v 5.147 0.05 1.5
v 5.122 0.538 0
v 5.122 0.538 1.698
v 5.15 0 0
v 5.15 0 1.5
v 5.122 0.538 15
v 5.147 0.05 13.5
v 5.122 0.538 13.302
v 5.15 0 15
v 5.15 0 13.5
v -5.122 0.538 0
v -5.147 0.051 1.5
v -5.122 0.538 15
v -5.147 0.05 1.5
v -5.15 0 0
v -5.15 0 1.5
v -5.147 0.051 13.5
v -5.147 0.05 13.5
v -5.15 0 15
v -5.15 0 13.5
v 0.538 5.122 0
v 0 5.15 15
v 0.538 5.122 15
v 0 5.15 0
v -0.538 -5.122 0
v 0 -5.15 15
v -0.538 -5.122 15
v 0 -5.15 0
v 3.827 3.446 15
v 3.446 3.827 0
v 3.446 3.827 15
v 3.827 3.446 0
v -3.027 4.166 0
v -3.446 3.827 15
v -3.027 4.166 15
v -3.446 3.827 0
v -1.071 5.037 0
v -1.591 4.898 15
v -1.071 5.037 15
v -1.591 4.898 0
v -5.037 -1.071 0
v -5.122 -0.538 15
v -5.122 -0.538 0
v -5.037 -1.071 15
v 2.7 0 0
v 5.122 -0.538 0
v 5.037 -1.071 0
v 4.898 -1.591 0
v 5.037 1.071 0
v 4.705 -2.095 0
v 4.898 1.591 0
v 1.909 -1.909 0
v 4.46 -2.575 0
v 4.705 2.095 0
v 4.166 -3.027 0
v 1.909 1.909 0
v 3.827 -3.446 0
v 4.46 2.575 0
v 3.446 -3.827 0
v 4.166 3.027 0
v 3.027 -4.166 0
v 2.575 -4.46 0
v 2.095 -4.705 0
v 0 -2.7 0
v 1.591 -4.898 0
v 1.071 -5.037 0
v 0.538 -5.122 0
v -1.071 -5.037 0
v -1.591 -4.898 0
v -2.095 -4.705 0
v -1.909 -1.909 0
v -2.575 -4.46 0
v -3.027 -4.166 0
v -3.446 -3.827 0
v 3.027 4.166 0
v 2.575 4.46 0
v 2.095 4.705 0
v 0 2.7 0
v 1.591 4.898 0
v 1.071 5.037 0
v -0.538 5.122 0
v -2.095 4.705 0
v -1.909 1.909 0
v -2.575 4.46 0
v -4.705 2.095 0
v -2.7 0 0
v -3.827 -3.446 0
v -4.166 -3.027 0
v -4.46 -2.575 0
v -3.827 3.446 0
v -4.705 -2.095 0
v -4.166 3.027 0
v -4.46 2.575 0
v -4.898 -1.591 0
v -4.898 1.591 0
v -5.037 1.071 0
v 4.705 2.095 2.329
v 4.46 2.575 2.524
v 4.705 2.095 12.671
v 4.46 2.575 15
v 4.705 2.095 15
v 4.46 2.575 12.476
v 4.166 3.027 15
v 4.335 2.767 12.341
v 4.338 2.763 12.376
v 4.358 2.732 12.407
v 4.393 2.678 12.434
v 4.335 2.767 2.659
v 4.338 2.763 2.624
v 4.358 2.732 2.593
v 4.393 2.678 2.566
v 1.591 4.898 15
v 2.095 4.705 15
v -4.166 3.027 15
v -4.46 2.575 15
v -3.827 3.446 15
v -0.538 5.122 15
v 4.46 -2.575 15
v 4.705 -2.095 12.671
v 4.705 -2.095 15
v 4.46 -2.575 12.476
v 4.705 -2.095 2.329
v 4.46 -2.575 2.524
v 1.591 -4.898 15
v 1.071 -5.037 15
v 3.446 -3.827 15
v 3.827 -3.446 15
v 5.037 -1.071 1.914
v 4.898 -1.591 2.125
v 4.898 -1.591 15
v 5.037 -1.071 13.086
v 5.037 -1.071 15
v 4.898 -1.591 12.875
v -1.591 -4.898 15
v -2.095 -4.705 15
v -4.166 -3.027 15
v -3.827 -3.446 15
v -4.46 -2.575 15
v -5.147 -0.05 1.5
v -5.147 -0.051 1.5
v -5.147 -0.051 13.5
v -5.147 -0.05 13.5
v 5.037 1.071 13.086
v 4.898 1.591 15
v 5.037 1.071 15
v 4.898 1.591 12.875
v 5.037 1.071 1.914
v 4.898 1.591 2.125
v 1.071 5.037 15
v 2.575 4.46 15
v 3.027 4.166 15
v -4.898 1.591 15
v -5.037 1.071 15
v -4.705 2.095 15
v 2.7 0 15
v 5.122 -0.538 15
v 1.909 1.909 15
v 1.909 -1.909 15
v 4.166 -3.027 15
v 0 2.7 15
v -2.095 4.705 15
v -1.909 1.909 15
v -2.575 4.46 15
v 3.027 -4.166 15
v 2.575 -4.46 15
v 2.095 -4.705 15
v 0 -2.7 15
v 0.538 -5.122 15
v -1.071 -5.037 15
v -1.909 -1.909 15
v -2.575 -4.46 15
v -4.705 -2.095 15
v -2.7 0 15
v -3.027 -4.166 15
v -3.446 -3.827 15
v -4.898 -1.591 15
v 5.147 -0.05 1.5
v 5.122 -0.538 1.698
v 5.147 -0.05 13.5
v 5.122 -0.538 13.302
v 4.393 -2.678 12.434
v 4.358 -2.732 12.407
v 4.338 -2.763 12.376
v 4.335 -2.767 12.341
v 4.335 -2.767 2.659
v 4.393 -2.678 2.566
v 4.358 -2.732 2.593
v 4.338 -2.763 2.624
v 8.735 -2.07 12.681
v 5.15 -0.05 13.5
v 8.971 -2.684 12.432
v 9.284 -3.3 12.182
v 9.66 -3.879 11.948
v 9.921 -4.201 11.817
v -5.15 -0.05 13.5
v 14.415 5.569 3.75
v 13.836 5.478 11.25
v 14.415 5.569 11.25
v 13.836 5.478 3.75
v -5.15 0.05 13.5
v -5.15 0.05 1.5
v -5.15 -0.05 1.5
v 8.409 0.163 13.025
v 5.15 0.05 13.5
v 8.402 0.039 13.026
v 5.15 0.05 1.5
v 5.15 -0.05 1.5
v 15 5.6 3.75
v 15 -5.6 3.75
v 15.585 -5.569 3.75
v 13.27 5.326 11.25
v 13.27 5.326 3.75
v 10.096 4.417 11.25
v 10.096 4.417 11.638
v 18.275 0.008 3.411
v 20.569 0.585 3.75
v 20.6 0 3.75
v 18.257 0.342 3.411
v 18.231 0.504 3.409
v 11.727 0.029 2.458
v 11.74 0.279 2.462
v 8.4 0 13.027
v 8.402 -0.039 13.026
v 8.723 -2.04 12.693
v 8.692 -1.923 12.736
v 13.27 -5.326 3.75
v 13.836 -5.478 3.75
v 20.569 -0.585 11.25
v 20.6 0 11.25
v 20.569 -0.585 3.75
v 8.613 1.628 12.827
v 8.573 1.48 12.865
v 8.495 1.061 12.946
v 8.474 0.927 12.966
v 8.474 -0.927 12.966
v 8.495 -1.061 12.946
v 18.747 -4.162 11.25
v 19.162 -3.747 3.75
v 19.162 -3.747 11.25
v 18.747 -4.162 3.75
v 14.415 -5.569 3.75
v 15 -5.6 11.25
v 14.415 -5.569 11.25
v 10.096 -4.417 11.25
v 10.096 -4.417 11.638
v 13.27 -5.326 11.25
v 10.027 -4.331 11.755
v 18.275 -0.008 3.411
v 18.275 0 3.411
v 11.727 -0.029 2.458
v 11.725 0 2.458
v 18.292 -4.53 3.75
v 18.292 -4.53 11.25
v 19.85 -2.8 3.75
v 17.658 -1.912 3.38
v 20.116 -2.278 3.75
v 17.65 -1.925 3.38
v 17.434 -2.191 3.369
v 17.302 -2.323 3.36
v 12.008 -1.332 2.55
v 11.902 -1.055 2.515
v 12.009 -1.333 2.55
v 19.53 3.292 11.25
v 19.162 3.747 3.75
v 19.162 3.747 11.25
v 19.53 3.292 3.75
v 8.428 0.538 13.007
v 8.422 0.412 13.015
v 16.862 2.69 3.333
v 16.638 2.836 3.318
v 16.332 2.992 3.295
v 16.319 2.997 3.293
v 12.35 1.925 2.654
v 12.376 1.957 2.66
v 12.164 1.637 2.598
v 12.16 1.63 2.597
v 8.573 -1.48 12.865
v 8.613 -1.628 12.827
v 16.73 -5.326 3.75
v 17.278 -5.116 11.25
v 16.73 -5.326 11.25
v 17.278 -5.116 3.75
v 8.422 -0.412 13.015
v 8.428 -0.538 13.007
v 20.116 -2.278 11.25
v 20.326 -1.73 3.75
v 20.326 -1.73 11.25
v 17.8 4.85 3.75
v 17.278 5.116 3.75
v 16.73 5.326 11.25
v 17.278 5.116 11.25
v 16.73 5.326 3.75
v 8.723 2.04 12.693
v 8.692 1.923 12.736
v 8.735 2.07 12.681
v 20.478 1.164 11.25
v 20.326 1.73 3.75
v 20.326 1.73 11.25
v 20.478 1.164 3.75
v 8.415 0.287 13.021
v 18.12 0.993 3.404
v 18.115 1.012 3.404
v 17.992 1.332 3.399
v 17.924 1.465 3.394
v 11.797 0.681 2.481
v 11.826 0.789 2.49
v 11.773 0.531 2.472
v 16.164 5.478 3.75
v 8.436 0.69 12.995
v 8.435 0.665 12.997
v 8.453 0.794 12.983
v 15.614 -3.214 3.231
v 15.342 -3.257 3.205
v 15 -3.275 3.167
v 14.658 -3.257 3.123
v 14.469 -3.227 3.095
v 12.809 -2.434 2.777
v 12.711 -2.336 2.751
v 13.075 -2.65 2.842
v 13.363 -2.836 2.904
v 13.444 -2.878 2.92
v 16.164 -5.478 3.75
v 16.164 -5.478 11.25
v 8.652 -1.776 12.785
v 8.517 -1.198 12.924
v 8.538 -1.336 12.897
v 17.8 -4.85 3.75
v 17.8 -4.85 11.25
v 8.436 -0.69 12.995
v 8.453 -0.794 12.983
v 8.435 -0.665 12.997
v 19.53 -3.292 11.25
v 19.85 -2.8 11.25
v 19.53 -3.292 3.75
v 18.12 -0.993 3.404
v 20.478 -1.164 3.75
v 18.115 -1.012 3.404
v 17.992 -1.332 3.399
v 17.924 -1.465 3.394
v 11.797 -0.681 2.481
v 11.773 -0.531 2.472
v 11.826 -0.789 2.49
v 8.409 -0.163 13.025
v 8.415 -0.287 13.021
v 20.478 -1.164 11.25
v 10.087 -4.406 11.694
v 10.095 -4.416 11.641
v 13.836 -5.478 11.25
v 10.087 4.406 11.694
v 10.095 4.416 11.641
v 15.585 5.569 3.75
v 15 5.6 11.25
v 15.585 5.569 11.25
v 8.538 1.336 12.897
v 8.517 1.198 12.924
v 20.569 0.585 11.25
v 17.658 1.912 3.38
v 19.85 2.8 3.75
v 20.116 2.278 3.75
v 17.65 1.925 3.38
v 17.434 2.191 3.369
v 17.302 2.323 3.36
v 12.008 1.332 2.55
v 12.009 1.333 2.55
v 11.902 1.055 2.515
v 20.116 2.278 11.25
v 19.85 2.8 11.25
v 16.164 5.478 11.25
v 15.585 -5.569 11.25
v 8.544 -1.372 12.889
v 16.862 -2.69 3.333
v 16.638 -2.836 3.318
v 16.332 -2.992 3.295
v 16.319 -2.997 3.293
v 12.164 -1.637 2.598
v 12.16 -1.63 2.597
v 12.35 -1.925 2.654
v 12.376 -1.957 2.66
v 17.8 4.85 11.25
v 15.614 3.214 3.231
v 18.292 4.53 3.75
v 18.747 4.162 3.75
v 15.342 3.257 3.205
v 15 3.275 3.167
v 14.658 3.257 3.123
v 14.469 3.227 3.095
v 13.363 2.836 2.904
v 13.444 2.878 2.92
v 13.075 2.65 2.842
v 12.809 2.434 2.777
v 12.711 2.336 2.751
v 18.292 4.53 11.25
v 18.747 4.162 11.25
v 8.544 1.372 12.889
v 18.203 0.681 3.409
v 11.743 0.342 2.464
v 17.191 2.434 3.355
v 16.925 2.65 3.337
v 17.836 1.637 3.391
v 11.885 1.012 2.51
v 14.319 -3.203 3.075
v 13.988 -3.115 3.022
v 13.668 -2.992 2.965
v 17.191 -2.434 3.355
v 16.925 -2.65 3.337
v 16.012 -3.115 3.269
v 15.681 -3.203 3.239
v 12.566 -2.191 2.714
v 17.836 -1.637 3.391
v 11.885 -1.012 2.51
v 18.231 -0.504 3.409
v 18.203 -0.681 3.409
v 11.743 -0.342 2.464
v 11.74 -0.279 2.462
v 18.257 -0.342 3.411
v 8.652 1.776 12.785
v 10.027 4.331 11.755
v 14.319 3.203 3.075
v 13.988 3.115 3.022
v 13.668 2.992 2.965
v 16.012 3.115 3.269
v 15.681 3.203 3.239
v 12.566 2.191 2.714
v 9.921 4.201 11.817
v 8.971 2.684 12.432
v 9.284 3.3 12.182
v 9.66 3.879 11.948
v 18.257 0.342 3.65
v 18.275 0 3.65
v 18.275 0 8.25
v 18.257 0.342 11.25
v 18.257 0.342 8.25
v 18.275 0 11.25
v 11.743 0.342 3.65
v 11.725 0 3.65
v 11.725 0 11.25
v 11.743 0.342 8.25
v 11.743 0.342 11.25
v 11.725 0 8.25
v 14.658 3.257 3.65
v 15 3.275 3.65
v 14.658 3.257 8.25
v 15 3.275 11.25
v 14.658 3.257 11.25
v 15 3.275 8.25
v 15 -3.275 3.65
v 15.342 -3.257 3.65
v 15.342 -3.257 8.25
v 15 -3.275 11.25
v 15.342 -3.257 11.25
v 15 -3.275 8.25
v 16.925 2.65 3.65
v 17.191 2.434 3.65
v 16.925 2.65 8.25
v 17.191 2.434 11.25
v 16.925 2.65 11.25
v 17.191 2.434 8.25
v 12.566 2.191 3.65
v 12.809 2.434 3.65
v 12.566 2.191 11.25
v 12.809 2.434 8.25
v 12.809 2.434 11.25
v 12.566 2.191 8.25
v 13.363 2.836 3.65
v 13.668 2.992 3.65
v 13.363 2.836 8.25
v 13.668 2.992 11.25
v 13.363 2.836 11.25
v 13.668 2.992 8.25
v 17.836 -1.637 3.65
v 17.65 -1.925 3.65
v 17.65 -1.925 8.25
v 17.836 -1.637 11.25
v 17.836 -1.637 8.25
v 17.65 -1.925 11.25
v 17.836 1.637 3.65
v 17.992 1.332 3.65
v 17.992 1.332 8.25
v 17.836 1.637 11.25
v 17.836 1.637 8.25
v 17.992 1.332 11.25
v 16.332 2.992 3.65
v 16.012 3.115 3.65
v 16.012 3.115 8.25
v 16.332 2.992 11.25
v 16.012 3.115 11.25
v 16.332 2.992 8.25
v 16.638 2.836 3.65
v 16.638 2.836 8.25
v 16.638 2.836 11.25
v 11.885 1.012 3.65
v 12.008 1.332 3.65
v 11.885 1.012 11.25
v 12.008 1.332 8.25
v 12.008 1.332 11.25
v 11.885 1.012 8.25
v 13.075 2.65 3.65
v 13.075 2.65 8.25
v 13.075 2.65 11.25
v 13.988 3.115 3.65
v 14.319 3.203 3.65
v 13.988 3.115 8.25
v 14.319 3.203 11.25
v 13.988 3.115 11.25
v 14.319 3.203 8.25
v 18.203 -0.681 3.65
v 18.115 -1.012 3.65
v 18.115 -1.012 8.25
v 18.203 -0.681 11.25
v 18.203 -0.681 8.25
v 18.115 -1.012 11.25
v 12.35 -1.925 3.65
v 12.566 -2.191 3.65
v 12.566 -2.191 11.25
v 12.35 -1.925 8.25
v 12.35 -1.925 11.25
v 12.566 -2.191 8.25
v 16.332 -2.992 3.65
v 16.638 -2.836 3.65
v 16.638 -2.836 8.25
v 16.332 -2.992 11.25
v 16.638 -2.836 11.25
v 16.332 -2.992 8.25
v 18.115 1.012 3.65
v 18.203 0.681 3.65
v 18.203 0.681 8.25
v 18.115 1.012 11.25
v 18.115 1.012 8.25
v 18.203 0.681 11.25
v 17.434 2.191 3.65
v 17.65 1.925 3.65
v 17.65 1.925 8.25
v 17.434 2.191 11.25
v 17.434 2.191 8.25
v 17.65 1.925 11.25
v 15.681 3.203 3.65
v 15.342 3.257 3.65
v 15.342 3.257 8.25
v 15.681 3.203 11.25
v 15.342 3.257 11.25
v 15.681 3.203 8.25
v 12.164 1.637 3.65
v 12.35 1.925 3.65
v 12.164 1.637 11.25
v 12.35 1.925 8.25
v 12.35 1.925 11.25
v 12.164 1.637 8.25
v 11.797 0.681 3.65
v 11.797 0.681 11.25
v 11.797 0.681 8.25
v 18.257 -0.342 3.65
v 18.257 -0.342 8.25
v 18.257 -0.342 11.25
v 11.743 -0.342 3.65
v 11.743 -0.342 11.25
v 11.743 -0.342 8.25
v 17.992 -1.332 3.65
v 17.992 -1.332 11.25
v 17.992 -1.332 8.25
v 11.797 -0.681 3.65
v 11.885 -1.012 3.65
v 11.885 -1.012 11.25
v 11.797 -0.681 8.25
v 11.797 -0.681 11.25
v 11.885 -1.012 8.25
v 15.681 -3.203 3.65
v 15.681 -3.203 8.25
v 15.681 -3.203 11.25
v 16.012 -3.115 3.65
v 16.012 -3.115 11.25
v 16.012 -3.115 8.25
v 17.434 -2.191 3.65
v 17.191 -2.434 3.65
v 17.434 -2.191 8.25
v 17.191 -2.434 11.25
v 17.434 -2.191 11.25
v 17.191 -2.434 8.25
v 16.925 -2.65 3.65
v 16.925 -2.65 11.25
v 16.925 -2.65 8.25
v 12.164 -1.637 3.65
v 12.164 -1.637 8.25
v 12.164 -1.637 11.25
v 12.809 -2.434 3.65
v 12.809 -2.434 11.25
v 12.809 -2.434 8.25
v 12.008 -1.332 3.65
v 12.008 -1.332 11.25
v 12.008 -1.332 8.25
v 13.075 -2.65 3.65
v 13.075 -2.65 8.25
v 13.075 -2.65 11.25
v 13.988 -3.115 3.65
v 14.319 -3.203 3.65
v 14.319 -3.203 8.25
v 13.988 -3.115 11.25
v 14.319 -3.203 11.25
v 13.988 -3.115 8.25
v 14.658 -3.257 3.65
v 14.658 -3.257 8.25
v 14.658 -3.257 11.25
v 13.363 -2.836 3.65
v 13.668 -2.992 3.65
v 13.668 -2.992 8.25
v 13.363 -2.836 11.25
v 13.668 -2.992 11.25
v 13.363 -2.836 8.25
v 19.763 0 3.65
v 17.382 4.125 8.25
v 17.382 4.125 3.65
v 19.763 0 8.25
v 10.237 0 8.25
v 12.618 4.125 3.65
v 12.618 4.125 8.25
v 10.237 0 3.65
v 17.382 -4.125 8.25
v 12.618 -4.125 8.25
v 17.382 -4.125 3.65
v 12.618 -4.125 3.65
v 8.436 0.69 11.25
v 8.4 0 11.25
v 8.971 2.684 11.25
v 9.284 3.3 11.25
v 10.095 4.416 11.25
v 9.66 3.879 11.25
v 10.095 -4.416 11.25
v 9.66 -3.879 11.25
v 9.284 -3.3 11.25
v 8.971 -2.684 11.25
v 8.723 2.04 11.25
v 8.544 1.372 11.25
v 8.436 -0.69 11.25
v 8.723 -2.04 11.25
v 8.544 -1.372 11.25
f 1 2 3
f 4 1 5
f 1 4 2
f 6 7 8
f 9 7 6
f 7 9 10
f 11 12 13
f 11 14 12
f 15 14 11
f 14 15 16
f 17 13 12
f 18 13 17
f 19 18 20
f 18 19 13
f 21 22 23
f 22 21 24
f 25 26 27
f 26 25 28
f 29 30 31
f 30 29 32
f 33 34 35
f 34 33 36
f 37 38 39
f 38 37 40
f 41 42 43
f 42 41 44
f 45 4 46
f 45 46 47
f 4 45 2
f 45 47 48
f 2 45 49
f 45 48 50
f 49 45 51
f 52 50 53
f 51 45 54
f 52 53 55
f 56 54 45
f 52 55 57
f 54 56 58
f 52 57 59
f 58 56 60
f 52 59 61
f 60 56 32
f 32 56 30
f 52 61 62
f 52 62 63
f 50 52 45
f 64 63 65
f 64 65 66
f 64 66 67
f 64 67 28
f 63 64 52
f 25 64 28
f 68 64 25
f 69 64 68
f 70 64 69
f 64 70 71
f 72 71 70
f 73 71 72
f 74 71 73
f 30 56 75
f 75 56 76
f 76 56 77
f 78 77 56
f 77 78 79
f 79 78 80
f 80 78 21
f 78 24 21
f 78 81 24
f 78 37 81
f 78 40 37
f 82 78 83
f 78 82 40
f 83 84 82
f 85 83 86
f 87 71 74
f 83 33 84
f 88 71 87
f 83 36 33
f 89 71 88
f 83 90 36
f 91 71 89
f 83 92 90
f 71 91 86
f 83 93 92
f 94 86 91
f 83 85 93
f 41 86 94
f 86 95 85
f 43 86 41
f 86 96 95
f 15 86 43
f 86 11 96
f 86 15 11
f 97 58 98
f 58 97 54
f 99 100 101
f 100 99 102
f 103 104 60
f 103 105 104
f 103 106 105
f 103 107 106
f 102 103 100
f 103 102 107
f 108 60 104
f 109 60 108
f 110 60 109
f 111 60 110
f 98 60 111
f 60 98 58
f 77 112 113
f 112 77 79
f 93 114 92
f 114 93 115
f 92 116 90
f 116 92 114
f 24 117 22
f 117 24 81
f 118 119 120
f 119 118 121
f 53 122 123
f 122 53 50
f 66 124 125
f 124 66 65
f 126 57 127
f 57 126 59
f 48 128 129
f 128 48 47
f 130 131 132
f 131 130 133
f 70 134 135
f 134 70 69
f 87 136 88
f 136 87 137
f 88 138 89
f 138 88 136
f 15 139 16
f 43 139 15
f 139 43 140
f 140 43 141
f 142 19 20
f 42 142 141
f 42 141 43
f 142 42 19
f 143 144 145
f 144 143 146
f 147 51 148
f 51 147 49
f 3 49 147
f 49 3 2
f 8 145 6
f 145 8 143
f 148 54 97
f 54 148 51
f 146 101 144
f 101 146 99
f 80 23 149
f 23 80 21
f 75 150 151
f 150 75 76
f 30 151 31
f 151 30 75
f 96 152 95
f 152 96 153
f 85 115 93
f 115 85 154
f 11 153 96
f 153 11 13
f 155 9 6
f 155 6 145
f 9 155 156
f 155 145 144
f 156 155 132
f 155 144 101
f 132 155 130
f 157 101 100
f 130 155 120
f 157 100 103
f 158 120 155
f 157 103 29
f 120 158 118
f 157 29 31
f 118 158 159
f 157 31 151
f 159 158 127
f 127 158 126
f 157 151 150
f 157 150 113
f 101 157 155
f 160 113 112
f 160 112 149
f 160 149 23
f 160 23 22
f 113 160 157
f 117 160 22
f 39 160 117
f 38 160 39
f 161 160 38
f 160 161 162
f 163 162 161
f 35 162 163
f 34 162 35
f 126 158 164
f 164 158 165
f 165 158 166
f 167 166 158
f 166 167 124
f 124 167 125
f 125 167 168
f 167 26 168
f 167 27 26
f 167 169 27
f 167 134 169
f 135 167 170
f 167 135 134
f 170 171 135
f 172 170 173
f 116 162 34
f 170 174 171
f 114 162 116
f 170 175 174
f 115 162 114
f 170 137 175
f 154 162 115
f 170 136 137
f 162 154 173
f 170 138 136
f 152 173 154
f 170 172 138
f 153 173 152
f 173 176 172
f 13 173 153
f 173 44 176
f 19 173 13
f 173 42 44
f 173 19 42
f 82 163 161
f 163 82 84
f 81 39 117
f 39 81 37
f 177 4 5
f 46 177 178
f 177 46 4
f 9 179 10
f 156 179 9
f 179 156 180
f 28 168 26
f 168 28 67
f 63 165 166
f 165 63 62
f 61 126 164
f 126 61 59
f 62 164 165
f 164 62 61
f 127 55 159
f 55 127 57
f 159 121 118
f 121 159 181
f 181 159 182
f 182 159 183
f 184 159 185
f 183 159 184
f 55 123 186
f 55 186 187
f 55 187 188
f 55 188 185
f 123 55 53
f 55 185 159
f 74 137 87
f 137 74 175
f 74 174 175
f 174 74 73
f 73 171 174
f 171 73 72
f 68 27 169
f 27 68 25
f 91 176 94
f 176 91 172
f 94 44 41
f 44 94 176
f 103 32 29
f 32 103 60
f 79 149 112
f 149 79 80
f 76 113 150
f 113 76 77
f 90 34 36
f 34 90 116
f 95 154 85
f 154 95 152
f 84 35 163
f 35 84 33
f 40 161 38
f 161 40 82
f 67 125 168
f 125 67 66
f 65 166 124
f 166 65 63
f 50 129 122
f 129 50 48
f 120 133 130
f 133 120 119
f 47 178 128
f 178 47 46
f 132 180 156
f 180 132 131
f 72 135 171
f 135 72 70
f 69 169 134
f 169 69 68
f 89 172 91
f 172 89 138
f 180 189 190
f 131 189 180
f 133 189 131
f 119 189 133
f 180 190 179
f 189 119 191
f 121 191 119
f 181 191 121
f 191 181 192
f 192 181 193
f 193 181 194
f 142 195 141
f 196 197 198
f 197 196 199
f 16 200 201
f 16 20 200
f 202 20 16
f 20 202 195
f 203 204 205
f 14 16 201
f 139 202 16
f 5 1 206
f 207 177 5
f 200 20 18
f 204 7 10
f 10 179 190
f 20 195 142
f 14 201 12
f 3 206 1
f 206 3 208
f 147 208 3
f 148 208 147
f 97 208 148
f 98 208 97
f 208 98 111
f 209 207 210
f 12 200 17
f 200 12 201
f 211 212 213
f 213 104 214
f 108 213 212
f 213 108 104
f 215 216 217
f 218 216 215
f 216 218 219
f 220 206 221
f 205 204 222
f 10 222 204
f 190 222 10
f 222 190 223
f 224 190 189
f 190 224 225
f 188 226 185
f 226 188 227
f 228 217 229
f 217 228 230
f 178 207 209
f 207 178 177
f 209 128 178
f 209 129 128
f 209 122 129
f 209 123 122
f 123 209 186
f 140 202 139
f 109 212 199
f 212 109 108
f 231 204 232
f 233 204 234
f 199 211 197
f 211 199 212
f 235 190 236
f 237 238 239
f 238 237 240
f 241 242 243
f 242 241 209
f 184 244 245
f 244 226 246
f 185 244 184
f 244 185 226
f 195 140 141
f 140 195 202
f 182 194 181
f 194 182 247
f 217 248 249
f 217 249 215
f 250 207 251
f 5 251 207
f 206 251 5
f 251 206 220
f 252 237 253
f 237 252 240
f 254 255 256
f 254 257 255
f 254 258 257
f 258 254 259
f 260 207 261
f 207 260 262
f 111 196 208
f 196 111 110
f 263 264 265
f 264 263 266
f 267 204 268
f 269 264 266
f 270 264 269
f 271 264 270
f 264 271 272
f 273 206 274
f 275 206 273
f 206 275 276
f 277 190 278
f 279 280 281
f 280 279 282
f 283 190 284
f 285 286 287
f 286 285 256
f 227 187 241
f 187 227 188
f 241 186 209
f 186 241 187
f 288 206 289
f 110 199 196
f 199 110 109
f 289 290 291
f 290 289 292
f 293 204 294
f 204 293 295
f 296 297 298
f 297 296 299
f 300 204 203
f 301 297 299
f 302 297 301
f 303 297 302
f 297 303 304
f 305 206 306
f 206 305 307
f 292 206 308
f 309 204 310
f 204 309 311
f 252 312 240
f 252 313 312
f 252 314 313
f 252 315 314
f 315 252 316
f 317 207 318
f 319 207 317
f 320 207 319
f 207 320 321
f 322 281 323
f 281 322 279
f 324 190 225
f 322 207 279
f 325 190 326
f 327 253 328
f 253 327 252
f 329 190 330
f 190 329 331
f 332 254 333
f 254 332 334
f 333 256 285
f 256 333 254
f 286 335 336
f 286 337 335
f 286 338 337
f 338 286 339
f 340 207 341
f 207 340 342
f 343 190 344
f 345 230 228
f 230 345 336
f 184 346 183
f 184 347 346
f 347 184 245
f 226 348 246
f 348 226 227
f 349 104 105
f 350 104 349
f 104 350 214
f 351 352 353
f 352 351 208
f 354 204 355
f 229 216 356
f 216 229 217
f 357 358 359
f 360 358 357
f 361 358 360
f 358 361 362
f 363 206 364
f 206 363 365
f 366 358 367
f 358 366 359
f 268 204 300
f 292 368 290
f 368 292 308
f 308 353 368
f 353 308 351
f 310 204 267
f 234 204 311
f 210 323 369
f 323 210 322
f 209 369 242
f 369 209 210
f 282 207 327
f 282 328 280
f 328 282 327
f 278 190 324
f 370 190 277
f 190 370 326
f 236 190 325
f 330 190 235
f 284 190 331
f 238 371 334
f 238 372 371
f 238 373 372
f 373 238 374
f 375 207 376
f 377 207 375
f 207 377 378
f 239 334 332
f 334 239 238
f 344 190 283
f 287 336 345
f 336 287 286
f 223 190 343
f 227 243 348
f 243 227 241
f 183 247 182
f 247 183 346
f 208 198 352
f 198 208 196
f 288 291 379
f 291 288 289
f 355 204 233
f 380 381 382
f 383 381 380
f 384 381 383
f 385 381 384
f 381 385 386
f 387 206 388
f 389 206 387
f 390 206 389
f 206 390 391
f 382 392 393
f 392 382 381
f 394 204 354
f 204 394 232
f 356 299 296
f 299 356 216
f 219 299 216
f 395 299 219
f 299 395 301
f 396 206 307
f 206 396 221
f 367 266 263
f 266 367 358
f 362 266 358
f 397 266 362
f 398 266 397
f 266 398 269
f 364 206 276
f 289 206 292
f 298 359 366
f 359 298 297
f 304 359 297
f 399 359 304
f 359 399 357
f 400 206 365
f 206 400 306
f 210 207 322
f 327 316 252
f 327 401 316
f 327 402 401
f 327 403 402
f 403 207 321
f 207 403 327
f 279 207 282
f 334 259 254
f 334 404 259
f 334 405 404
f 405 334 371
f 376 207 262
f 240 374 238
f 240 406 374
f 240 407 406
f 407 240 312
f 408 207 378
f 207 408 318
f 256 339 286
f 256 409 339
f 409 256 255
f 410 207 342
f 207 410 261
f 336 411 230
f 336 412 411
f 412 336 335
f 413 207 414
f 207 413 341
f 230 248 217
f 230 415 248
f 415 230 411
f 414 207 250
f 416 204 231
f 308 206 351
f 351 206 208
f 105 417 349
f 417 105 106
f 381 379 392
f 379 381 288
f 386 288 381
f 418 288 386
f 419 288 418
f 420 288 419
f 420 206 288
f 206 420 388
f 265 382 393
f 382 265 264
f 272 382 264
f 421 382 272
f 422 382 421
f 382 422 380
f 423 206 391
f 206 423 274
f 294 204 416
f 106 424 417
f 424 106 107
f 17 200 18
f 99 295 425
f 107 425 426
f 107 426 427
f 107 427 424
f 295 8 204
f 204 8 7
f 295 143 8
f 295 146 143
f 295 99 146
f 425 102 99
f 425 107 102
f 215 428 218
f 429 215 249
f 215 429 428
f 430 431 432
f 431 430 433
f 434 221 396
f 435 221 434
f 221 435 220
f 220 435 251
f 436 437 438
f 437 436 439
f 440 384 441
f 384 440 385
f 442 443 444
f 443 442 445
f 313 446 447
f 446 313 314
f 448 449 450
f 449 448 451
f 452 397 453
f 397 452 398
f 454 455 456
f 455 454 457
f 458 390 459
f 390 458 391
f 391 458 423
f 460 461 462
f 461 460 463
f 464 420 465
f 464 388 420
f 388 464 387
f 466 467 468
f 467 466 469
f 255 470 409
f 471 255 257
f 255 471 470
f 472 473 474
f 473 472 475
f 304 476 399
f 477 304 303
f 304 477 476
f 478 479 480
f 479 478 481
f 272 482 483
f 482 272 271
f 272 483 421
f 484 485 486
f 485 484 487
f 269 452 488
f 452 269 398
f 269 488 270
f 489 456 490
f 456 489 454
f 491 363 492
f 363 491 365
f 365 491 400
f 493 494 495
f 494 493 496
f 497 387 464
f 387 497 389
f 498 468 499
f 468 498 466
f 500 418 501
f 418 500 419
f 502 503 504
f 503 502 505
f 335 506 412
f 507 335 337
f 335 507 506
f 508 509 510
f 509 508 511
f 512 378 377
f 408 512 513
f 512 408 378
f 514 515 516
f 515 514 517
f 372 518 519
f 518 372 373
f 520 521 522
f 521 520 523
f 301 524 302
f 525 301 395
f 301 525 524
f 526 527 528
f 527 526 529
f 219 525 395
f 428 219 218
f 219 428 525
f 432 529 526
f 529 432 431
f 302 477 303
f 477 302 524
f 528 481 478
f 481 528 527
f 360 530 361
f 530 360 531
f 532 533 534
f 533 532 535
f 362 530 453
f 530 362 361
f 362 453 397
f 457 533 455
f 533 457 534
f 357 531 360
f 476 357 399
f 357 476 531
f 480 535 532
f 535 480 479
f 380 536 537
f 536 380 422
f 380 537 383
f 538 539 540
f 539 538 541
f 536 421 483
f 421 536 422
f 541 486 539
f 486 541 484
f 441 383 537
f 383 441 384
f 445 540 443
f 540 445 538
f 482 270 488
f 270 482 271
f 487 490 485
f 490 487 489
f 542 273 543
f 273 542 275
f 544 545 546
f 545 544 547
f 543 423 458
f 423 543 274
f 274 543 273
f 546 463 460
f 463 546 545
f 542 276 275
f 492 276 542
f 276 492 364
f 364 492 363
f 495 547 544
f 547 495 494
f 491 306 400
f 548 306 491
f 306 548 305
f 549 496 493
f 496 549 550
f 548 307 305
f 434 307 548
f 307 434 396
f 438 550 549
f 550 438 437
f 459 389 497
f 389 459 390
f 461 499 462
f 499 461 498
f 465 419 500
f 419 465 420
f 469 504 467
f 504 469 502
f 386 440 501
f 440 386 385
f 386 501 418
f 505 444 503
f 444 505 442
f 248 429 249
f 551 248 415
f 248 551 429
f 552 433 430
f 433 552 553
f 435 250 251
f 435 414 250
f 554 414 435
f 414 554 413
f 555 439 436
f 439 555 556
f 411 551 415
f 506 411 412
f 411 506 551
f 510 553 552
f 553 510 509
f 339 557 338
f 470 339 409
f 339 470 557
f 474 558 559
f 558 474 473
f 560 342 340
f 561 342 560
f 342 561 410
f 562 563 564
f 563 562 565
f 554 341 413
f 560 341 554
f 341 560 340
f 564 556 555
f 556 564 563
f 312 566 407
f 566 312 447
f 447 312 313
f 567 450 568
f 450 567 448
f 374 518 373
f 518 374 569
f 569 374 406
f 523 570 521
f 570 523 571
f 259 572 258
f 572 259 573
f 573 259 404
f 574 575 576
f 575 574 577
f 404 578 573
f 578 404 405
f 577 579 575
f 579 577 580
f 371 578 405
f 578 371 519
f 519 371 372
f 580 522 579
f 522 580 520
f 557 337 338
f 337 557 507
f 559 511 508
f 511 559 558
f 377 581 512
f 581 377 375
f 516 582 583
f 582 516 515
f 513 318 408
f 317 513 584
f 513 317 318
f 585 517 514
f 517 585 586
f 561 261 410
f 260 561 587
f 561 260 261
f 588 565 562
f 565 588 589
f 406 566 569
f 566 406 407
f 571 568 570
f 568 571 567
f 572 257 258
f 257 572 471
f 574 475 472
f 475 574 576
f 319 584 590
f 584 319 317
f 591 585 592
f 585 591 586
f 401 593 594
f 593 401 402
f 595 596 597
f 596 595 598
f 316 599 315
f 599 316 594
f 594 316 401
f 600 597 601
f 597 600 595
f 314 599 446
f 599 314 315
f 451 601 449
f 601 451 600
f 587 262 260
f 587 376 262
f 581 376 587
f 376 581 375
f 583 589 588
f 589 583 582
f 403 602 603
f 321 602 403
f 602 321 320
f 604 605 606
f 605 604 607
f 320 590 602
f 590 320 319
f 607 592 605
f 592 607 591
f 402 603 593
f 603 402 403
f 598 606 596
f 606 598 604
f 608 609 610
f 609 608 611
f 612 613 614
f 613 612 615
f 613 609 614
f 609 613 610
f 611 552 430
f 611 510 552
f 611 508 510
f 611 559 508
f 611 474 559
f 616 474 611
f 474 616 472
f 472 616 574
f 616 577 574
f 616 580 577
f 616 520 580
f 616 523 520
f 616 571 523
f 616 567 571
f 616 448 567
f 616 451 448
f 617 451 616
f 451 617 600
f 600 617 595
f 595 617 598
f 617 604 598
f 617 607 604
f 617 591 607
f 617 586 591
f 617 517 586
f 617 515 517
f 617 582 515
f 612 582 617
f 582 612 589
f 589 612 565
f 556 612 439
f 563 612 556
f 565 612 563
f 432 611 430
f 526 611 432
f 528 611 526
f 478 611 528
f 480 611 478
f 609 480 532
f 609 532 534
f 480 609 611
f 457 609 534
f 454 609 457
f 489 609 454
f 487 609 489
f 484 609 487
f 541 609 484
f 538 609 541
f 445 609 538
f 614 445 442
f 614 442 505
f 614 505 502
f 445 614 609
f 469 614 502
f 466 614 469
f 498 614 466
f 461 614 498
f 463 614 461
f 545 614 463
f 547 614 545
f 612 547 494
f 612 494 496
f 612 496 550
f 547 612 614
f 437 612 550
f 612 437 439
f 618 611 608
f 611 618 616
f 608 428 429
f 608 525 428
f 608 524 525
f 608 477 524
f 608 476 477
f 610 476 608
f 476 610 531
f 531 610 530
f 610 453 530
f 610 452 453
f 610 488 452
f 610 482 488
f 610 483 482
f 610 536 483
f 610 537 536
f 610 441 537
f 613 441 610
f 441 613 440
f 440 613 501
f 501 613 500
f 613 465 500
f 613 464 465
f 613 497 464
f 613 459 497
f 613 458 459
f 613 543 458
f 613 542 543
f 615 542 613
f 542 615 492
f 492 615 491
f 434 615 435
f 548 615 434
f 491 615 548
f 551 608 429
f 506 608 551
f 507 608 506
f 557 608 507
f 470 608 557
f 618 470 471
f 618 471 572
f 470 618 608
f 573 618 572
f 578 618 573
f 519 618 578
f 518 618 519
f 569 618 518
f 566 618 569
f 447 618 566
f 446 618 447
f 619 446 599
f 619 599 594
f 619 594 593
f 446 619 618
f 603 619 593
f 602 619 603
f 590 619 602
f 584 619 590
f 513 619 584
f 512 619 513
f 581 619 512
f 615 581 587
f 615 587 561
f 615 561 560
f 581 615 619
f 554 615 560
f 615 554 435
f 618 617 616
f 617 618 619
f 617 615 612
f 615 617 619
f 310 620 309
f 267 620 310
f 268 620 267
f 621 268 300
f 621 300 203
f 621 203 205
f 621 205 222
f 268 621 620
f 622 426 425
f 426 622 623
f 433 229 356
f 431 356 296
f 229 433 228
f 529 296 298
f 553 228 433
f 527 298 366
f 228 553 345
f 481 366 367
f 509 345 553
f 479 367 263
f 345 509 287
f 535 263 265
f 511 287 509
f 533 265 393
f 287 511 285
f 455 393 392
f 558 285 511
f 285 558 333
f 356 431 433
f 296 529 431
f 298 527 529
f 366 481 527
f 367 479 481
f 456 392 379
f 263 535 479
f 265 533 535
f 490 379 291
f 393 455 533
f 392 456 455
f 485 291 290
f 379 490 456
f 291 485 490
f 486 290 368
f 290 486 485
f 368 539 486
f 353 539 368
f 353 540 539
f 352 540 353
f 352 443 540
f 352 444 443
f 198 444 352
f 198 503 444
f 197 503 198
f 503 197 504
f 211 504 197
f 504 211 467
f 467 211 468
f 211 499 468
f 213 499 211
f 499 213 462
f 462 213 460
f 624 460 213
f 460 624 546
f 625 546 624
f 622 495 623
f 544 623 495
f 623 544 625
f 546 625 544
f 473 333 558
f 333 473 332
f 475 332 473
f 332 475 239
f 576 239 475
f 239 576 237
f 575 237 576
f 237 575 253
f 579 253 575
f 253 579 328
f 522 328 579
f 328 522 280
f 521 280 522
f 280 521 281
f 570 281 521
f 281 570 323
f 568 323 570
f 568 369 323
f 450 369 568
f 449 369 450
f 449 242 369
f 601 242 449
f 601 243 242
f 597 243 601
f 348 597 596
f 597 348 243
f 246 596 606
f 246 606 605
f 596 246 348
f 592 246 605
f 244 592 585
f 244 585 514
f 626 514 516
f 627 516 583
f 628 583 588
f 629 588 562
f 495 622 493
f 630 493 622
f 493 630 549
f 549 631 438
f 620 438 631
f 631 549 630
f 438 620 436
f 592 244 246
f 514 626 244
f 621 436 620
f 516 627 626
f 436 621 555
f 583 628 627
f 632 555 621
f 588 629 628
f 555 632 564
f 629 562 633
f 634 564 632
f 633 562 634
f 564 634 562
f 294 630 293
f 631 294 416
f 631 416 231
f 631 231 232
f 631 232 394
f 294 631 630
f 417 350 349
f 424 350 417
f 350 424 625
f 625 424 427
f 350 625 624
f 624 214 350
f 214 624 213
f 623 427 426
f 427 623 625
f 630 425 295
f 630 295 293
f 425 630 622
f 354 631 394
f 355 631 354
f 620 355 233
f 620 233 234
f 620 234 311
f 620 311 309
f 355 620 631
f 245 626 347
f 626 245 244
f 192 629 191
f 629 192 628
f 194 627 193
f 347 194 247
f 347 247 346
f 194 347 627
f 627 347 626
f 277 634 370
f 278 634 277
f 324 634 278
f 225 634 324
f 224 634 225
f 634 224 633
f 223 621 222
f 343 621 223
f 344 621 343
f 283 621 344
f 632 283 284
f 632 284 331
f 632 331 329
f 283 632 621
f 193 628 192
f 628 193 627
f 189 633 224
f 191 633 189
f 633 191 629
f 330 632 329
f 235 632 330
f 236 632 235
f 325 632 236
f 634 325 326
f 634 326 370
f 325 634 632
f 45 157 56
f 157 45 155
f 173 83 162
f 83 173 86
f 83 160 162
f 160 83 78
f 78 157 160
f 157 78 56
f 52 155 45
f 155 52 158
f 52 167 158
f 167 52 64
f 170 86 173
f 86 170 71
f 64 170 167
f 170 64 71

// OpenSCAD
// Copyright (C) 2026 Weston Hinton <wbhinton@gmail.com>
//
// This program is free software: you can redistribute it and/or modify
// it under the terms of the GNU General Public License as published by
// the Free Software Foundation, either version 3 of the License, or
// (at your option) any later version.
//
// This program is distributed in the hope that it will be useful,
// but WITHOUT ANY WARRANTY; without even the implied warranty of
// MERCHANTABILITY or FITNESS FOR A PARTICULAR PURPOSE.  See the
// GNU General Public License for more details.
//
// You should have received a copy of the GNU General Public License
// along with this program.  If not, see <https://www.gnu.org/licenses/>.
// =============================================================================
// PROJECT: OPTIMIZED SMA MOUNT
// VERSION: 1.9 (Educational / Library Edition)
// DESCRIPTION: A compact, high-strength SMA mount designed for TPU printing.
//              Features a "Hex-Lock" to keep the antenna pigtail from spinning.
// =============================================================================

/* [1. FRAME SETTINGS] */

// The diameter of your aluminum standoff.
standoff_dia    = 5.5;   

// The total height of the part that slides over the standoff.
sleeve_height   = 15.0;  

// Thickness of the TPU walls. 2.4mm is a "magic number" (6 walls @ 0.4mm nozzle).
wall_thickness  = 2.4; 

/* [2. ANTENNA ORIENTATION] */

// The "Twist" or Roll. 0 = Antenna points up, 90 = Antenna points sideways.
antenna_roll    = 0;    

// How far the center of the antenna sits from the center of the standoff.
offset_dist     = 15.0;  

/* [3. SMA HARDWARE SPECS] */

// The threaded part of the SMA pigtail.
sma_hole_dia    = 6.4;   

// The width of the metal nut (flat-to-flat).
sma_hex_size    = 8.1;   

// How deep the nut sits inside the TPU (standard is 4mm - 5mm).
sma_hex_depth   = 4.5;   

// The "ceiling" thickness above the nut that the antenna washer sits on.
ceiling_thick   = 3.0; 

/* [4. PRINT OPTIMIZATION] */

// Adds a tiny bit of extra room so hardware fits even with TPU shrinkage.
fit_tolerance   = 0.15; 

// The "Resolution" of your circles. 60 is a sweet spot for FPV parts.
$fn = 60;

/* [5. INTERNAL CALCULATIONS] */

// Total height of the antenna housing head.
housing_h = sma_hex_depth + ceiling_thick;

// Total outer diameter of the antenna housing.
sma_outer_dia = sma_hole_dia + (wall_thickness * 2);

// Finding the middle of the sleeve to center the arm.
mid_point = sleeve_height / 2;

// =============================================================================
// MAIN ASSEMBLY
// =============================================================================

// The 'difference' function tells OpenSCAD: "Take the first object and 
// subtract everything that follows from it."
difference() {
    
    // --- STEP 1: THE SOLID BODY ---
    // We 'union' (glue) these pieces together before cutting holes in them.
    union() {
        
        // A. The Standoff Sleeve (The anchor point)
        cylinder(h=sleeve_height, d=standoff_dia + (wall_thickness*2));
        
        // B. The Structural Bridge (The Stalk)
        translate([0, 0, mid_point]) {
            
            // 'hull' is like stretching a rubber band around two shapes.
            // It creates a smooth, tapered transition between them.
            hull() {
                
                // Shape 1: A tall, thin slice on the side of the sleeve.
                // This spreads the crash-stress across the whole sleeve.
                cube([standoff_dia + (wall_thickness*2), 0.1, sleeve_height * 0.8], center=true);
                
                // Shape 2: The tilted head where the antenna lives.
                translate([offset_dist, 0, 0])
                    rotate([antenna_roll, 0, 0])
                        cylinder(h=housing_h, d=sma_outer_dia, center=true);
            }
        }
    }

    // --- STEP 2: THE SUBTRACTIONS (Cutting the holes) ---
    
    // A. The Standoff Hole
    // We use $fn=8 to make an octagon. This creates 'tension points' that 
    // grip the standoff better than a perfect circle.
    translate([0, 0, -1])
        cylinder(h=sleeve_height + 2, d=standoff_dia - 0.1, $fn=8);

    // B. The SMA Machining
    // We move and rotate EXACTLY like we did in Step 1 to line up the holes.
    translate([offset_dist, 0, mid_point]) {
        rotate([antenna_roll, 0, 0]) {
            
            // 1. The Through-Hole (For the threaded barrel)
            // We make it extra long (+20) so it punches through both sides.
            cylinder(h=housing_h + 20, d=sma_hole_dia + fit_tolerance, center=true);
            
            // 2. The Hex Lock (The Nut Pocket)
            // $fn=6 makes a hexagon. This locks the nut so it won't spin.
            translate([0, 0, -housing_h/2 - 0.1]) 
                cylinder(h=sma_hex_depth + 0.1, d=(sma_hex_size + fit_tolerance) / cos(30), $fn=6);
            
            // 3. The Top Deck Leveler
            // This 'shaves' the top of the tilted head so the washer sits perfectly flat.
            translate([0, 0, housing_h/2])
                cylinder(h=2, d=sma_outer_dia + 2);
        }
    }
}
